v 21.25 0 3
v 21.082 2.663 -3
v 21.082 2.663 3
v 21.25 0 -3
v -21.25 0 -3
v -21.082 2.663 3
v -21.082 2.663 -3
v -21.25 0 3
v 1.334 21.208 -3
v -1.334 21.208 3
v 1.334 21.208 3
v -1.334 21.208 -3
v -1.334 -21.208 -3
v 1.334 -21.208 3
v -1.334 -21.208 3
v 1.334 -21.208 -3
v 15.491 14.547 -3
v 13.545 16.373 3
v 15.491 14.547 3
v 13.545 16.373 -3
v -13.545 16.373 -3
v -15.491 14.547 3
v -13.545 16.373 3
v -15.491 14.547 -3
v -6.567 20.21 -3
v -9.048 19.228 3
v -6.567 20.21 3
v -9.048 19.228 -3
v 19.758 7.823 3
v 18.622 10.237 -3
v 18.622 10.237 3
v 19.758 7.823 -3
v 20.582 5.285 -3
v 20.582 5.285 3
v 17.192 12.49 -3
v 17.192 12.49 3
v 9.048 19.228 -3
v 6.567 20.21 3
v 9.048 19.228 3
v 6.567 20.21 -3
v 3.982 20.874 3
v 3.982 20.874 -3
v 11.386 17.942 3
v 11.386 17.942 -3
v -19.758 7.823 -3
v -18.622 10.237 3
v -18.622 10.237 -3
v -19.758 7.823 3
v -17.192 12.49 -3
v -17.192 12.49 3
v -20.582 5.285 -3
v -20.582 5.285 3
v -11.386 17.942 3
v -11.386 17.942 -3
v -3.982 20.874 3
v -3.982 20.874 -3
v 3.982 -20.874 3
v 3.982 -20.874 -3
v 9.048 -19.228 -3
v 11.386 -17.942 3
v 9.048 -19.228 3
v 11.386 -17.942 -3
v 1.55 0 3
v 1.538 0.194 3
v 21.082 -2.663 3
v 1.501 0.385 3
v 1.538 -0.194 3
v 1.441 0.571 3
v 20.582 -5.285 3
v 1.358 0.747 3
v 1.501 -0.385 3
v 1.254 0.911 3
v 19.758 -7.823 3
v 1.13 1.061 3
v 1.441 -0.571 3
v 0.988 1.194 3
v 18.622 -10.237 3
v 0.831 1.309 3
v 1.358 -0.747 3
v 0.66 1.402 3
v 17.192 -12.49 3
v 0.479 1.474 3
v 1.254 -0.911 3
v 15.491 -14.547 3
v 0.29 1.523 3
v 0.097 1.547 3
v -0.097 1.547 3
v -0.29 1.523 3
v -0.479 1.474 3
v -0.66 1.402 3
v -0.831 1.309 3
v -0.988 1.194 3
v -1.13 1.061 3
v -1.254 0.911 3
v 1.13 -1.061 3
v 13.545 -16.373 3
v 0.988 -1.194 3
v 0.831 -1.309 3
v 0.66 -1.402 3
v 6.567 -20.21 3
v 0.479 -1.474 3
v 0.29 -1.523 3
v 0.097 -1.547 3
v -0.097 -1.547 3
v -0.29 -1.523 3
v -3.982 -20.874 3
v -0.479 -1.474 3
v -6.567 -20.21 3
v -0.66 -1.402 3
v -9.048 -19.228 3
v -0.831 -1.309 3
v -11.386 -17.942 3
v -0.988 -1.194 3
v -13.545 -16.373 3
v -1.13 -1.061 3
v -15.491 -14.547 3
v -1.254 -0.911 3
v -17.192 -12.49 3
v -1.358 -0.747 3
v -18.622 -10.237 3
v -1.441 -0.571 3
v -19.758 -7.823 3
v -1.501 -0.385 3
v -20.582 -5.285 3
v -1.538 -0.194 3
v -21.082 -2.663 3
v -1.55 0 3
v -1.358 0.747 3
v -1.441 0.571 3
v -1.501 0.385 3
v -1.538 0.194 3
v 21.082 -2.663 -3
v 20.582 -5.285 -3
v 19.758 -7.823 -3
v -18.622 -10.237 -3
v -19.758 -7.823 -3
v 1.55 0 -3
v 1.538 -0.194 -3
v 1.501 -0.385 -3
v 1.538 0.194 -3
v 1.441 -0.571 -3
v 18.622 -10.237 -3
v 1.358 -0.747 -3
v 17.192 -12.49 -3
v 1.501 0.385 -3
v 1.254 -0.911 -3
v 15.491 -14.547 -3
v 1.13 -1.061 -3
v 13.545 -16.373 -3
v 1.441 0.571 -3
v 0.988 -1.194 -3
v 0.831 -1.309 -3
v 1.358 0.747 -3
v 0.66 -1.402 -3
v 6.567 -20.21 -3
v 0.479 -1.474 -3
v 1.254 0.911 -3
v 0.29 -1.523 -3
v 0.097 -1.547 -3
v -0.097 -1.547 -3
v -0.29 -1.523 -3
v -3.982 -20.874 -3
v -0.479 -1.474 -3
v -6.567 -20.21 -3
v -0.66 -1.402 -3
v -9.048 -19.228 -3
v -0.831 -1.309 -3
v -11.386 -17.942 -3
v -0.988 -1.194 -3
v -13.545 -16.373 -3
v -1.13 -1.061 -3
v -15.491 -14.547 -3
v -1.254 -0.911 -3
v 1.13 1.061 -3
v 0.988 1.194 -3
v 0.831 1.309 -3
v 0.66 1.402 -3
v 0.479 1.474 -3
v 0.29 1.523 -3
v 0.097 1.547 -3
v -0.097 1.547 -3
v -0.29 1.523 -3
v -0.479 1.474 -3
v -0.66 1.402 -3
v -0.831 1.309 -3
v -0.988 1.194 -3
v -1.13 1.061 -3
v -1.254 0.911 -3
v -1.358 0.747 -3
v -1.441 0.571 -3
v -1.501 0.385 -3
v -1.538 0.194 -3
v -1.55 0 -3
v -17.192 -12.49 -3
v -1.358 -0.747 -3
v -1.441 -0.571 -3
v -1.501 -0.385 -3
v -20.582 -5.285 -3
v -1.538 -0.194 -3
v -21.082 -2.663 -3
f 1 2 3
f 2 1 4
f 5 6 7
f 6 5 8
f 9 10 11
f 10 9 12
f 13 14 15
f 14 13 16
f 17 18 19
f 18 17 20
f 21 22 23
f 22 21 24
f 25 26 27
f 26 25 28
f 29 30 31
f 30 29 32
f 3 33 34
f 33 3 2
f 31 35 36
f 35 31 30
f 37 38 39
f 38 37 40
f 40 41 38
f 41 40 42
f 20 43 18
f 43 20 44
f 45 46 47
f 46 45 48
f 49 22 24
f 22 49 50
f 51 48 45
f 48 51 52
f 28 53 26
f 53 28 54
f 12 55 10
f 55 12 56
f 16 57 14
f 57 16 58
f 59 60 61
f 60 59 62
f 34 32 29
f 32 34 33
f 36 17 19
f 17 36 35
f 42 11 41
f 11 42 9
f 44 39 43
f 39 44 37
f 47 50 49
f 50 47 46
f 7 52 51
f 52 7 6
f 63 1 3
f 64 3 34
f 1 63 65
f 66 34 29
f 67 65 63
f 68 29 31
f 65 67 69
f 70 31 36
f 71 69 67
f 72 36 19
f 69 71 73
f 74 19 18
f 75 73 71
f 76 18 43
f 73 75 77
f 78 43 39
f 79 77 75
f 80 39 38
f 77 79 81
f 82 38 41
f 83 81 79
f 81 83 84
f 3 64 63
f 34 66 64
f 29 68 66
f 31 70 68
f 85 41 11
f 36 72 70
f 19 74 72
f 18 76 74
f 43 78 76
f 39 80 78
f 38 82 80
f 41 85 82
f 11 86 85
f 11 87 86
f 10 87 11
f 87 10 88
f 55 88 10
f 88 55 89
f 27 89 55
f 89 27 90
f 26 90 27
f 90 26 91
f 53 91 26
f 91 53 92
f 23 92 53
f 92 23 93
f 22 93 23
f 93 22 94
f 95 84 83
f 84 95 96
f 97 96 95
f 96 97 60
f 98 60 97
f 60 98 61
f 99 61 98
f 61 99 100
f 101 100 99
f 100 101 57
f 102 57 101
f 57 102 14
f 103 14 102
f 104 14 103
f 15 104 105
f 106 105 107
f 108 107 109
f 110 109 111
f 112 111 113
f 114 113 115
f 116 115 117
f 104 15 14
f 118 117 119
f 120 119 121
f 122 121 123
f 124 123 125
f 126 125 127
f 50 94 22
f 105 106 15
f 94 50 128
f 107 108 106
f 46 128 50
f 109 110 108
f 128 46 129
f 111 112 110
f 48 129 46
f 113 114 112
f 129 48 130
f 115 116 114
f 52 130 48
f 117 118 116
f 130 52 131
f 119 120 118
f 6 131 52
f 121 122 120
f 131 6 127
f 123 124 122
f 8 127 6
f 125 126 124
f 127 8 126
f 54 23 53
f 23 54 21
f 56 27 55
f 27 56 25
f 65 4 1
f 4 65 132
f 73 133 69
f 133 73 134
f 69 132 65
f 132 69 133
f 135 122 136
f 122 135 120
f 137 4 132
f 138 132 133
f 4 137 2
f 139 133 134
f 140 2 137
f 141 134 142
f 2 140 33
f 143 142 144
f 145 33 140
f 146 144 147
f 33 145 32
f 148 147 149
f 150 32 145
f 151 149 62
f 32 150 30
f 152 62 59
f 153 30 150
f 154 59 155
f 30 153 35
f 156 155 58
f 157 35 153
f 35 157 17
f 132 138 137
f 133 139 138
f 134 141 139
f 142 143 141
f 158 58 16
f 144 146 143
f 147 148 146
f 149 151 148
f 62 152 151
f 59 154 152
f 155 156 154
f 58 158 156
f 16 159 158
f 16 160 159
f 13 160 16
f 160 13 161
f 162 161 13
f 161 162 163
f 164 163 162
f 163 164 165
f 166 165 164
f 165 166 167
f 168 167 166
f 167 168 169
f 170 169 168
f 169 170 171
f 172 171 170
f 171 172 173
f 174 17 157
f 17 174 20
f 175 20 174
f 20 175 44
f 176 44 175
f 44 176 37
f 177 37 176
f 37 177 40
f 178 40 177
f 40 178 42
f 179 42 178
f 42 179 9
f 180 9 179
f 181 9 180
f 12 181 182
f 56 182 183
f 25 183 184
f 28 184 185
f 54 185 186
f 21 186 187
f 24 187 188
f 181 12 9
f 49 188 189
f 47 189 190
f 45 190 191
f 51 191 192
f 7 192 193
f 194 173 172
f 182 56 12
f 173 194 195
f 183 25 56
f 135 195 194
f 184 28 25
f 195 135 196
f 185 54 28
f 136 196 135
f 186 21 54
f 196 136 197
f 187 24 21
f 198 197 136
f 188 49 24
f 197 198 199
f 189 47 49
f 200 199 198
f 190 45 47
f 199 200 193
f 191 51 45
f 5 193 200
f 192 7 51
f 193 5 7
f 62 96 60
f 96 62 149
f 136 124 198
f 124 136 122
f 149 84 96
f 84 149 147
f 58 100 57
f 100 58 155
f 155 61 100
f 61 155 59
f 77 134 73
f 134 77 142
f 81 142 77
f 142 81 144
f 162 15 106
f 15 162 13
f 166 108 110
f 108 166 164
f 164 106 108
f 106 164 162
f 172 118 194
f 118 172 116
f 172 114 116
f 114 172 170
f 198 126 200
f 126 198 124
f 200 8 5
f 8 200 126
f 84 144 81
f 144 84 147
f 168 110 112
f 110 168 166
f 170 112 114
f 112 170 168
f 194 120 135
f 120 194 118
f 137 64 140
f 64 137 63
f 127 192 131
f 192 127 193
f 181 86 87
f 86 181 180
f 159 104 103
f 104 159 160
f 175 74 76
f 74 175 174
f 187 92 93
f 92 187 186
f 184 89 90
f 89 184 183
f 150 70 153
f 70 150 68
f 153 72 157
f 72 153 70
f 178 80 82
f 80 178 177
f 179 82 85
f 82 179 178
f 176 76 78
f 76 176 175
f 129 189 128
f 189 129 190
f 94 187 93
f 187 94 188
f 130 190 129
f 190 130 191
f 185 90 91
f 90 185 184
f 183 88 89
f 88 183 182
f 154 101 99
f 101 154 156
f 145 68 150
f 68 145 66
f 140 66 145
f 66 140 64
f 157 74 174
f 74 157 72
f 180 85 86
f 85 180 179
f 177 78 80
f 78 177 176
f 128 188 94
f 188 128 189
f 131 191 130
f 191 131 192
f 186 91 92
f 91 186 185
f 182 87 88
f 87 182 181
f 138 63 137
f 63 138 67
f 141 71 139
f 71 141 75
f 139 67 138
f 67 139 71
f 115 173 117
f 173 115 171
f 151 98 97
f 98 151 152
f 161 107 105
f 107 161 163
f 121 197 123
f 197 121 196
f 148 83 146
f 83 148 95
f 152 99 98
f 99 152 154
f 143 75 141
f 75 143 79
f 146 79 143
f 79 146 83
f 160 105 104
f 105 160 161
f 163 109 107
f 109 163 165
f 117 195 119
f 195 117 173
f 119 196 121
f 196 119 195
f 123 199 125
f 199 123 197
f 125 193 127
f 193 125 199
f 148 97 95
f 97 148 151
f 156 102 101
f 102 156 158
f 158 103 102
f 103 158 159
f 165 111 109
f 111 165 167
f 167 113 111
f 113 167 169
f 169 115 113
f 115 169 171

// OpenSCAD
$fn = 50;


difference() {
	union() {
		translate(v = [0, 0, -3.0000000000]) {
			cylinder(h = 6, r = 21.2500000000);
		}
	}
	union() {
		translate(v = [0, 0, -100.0000000000]) {
			cylinder(h = 200, r = 1.5500000000);
		}
	}
}
